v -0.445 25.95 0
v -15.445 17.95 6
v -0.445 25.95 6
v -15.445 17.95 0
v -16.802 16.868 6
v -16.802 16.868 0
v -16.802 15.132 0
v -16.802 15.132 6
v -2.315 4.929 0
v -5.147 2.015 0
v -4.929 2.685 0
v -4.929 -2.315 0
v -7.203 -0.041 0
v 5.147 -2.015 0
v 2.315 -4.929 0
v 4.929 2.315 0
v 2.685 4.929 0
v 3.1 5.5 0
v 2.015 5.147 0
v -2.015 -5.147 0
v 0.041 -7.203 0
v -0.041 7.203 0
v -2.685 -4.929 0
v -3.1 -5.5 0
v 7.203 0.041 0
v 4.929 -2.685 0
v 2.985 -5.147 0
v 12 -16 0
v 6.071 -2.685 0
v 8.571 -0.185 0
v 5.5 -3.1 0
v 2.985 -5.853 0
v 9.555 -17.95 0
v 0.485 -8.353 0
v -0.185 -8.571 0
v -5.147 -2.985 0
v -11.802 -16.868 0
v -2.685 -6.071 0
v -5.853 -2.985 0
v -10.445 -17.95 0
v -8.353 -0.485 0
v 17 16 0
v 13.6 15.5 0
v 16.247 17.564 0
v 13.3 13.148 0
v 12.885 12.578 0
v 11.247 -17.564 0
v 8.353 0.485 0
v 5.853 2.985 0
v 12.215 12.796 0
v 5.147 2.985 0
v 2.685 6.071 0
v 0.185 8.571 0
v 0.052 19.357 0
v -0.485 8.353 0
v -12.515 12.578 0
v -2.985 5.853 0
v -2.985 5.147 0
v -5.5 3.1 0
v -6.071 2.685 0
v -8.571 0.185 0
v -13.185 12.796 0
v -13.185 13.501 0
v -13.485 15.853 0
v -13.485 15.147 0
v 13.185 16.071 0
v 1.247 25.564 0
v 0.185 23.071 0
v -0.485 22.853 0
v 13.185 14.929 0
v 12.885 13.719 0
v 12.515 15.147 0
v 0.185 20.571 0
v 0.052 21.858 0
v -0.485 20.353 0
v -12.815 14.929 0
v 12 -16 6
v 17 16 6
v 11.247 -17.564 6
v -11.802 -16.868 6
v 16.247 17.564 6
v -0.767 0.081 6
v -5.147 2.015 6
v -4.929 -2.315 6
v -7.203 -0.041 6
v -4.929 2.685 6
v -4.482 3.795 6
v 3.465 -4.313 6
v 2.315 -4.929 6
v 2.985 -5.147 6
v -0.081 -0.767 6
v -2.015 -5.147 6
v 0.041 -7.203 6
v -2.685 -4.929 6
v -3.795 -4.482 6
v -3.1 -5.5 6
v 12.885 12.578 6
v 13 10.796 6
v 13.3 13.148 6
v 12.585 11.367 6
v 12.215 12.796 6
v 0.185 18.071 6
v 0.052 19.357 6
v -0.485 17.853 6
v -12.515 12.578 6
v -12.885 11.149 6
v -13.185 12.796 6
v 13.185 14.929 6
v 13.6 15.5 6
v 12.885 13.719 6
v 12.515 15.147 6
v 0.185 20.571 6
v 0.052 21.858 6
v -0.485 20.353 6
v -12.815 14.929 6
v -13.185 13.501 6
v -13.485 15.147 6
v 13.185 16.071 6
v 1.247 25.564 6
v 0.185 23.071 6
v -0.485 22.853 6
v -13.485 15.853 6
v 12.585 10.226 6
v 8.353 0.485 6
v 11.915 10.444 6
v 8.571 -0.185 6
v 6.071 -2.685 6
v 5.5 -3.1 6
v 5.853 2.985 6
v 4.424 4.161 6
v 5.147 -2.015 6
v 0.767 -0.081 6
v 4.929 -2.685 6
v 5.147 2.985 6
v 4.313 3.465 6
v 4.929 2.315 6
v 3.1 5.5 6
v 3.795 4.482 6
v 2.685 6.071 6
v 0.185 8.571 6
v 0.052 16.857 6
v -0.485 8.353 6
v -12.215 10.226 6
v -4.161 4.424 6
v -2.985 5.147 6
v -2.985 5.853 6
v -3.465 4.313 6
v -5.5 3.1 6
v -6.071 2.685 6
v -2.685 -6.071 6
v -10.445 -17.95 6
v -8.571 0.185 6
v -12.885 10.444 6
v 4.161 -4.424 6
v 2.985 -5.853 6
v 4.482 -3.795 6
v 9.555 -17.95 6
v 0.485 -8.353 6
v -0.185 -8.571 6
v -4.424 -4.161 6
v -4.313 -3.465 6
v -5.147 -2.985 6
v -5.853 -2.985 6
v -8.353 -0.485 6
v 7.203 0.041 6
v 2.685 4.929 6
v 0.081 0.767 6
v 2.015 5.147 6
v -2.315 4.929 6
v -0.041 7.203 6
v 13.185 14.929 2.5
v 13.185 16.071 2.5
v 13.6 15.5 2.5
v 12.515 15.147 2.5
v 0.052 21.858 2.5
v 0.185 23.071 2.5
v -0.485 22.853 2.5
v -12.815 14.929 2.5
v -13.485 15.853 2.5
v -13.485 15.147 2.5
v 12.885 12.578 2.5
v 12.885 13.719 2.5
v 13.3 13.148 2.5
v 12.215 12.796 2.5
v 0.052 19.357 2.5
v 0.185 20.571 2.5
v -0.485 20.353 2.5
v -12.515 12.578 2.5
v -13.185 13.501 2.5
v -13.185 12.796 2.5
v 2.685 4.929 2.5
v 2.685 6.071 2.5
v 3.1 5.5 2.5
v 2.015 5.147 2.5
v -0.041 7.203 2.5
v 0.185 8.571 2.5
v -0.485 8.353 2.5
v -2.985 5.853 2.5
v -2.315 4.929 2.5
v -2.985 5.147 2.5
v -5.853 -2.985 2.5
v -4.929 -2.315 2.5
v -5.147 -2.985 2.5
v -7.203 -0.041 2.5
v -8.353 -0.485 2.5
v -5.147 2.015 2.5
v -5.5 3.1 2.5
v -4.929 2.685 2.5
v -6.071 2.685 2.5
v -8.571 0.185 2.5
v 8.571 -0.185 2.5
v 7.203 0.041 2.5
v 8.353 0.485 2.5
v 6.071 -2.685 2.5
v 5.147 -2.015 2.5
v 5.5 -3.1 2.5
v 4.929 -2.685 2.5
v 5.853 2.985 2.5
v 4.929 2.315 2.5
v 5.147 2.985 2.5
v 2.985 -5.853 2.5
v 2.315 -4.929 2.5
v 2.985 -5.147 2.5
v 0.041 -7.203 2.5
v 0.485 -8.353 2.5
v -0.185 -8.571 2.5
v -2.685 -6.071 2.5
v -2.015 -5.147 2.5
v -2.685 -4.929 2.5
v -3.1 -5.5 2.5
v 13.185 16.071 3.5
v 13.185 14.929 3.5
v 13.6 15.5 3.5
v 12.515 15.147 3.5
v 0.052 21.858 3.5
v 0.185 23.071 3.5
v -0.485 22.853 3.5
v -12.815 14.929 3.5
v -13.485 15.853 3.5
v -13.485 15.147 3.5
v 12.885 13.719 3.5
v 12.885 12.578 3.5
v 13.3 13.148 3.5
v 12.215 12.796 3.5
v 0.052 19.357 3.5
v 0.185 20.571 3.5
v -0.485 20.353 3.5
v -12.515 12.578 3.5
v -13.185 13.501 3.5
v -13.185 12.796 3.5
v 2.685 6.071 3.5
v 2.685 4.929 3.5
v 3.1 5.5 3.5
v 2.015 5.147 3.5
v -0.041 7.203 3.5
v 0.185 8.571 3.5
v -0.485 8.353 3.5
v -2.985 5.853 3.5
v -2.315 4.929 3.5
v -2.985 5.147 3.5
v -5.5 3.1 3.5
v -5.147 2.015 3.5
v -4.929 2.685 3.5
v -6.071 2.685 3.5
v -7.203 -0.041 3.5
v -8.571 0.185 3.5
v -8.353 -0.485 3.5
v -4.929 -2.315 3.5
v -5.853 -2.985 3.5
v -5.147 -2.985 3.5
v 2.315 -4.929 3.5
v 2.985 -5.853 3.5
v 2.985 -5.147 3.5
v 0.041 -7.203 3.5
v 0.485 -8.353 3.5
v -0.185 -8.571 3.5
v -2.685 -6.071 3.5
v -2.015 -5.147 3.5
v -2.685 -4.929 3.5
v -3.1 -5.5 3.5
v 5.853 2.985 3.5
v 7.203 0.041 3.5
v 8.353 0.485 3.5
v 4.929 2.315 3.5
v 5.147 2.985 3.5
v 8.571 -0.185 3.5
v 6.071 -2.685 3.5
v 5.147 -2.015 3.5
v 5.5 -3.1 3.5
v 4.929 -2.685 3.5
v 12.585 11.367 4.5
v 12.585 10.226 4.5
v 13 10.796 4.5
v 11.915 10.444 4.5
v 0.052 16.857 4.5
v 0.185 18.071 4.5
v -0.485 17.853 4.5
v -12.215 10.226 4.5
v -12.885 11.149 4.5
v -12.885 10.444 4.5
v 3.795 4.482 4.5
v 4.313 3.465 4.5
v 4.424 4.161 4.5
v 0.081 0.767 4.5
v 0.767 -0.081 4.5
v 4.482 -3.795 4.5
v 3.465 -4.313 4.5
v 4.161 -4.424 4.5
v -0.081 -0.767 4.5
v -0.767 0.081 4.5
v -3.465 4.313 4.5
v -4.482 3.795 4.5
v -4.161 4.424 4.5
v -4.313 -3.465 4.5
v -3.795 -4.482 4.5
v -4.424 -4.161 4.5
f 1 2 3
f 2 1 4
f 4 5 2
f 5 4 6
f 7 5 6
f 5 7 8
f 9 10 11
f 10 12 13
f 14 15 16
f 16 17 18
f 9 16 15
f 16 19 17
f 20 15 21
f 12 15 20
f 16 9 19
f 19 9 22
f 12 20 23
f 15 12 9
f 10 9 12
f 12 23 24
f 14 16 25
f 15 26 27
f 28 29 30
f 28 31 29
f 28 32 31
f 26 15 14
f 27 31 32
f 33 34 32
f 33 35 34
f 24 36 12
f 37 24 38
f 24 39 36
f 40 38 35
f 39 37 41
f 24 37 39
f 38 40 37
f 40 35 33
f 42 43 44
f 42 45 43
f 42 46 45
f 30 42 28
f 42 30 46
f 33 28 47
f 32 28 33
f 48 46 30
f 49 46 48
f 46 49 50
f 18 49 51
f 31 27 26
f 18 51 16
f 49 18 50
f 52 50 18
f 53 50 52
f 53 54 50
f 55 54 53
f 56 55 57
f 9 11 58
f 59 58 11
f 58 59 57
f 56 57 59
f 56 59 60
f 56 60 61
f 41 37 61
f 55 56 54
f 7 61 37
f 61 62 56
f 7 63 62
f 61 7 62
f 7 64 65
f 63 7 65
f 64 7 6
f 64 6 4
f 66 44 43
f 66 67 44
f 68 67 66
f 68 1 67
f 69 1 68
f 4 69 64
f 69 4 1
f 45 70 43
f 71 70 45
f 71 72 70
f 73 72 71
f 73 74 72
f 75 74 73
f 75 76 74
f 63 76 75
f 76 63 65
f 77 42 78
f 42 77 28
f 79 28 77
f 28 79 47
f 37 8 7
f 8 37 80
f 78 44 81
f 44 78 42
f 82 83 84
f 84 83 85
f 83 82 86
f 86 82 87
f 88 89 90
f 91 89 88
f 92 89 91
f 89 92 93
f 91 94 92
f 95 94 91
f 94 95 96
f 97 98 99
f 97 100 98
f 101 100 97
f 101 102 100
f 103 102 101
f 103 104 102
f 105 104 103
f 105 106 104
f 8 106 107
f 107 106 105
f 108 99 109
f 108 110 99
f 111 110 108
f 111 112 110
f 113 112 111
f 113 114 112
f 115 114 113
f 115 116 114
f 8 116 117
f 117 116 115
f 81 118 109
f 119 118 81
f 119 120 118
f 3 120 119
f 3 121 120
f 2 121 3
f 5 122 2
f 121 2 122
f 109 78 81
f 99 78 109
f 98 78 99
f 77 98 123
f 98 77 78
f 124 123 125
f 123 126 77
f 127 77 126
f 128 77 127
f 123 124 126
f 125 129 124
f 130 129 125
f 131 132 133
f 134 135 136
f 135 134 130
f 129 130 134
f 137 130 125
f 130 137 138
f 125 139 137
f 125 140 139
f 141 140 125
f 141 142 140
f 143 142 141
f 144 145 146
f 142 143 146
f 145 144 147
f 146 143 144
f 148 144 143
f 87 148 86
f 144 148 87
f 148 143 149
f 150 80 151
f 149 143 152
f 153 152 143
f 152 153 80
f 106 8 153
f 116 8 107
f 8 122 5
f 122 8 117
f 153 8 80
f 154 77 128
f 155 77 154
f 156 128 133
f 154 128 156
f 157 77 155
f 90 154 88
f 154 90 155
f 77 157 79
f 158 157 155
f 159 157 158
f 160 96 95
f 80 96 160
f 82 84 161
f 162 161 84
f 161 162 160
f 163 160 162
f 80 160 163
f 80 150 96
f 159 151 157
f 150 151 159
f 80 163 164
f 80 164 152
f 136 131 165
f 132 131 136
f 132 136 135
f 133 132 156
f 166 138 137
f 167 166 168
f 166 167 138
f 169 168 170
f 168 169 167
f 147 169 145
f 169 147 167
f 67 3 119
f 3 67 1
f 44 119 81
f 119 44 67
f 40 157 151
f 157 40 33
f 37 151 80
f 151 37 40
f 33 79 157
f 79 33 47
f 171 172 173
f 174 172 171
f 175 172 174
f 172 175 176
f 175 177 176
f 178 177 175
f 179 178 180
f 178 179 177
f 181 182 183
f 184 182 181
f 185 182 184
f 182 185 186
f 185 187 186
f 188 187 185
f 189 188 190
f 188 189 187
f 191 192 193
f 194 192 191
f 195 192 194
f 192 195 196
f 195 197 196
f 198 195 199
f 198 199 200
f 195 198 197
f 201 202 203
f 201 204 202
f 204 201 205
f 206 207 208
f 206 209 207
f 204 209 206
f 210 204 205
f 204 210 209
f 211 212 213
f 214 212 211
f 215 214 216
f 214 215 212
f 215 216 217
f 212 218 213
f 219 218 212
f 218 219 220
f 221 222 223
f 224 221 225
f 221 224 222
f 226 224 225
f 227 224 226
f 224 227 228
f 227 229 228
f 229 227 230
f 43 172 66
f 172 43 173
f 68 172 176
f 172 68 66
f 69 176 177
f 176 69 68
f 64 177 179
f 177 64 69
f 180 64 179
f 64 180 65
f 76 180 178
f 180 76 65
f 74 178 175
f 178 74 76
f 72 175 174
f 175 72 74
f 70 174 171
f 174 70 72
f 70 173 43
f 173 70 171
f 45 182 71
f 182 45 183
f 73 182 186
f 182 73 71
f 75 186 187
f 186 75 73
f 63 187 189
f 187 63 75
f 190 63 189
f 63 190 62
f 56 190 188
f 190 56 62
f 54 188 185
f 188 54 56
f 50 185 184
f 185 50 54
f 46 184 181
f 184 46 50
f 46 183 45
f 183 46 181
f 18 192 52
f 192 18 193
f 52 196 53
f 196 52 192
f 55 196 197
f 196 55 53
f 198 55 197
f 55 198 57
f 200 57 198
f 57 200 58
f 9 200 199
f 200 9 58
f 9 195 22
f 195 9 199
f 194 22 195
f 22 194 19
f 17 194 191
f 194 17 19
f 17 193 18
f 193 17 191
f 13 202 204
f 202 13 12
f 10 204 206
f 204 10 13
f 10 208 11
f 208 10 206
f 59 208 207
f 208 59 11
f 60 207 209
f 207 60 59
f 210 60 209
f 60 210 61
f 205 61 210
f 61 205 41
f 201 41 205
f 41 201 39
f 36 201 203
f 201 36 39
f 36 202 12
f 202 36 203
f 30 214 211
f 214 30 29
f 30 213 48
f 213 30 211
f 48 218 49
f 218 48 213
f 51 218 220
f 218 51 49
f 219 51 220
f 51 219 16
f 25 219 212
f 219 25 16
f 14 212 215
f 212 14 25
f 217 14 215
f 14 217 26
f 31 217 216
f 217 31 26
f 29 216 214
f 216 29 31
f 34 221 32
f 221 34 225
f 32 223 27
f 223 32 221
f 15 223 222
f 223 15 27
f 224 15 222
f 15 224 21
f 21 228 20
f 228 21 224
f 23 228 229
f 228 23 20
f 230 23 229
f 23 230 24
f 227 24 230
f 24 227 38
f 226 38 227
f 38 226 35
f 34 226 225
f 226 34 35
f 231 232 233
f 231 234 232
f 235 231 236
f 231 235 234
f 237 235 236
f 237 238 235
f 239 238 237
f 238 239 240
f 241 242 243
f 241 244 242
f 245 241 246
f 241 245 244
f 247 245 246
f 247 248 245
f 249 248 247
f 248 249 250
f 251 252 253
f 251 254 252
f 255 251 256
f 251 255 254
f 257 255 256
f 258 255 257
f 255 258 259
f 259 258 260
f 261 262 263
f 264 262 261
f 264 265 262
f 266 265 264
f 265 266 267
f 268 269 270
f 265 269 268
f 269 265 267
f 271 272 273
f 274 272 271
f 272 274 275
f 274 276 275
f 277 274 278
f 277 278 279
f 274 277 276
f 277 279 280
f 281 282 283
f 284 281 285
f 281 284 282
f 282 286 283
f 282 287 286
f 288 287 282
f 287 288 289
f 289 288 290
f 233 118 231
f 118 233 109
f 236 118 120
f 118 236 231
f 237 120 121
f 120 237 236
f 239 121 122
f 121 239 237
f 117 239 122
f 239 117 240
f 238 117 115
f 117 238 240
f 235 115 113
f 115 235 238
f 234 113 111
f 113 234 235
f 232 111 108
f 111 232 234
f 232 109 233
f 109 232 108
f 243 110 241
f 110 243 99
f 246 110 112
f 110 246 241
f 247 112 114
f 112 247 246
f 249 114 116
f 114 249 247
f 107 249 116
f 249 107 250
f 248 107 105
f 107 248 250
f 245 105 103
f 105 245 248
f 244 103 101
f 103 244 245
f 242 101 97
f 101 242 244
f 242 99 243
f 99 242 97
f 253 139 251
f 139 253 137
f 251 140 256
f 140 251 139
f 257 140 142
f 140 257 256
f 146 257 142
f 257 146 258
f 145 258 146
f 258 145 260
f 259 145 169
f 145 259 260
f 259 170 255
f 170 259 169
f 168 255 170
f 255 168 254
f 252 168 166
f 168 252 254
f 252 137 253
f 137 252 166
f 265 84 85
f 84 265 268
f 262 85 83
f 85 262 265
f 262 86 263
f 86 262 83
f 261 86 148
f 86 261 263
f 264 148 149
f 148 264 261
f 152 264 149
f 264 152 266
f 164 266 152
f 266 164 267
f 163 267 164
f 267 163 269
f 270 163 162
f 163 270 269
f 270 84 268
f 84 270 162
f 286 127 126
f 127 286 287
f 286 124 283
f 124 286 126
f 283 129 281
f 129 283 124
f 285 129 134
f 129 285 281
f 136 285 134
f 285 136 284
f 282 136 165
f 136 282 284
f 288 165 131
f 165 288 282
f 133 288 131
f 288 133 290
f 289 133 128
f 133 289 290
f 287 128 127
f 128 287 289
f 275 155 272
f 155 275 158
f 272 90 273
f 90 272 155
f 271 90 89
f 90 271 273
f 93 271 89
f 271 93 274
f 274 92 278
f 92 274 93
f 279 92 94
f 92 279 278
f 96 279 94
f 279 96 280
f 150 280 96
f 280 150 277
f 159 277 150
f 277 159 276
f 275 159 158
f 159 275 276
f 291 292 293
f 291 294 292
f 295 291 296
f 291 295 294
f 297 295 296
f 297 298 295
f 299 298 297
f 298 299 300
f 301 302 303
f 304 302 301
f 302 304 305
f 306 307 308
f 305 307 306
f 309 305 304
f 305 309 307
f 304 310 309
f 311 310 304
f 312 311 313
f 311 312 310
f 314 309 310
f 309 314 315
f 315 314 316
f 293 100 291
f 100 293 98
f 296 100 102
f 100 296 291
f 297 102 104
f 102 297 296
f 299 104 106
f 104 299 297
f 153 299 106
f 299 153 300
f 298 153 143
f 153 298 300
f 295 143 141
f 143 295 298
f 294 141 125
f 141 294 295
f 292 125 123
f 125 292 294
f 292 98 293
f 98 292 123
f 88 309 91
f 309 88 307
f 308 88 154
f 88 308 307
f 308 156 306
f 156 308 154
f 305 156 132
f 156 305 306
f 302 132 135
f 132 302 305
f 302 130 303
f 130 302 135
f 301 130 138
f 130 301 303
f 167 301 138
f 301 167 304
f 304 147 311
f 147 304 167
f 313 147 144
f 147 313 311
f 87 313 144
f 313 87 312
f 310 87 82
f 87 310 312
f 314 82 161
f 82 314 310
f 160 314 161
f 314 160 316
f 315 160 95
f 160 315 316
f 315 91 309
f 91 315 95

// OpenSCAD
// file: moves/range.scad
module shogi_move_range(edges=[0], thick=0.6) {
    for (a=edges) {
        rotate(a=a*45) {
            hull() {
                translate([-2.5, 5.5, 0]) circle(thick);
                translate([0, 8, 0]) circle(thick);
            }

            hull() {
                translate([0, 8, 0]) circle(thick);
                translate([2.5, 5.5, 0]) circle(thick);
            }
        }
    }
}
// file: moves/step.scad
module shogi_move_step(edges=[0], length=6, thick=0.6) {
    for (a=edges) {
        rotate(a=a*45) hull() {
            circle(thick);
            translate([0, length, 0]) circle(thick);
        }
    }
}
// file: ranks/rank3.scad
module shogi_rank_3(thick=0.6) {
    hull() {
        translate([-12.4, 10.796364, 0]) circle(thick);
        translate([0, 17.5, 0]) circle(thick);
    }

    hull() {
        translate([0, 17.5, 0]) circle(thick);
        translate([12.4, 10.796364, 0]) circle(thick);
    }
}
// file: ranks/rank2.scad
module shogi_rank_2(thick=0.6) {
    hull() {
        translate([-12.7, 13.148182, 0]) circle(thick);
        translate([0, 20, 0]) circle(thick);
    }

    hull() {
        translate([0, 20, 0]) circle(thick);
        translate([12.7, 13.148182, 0]) circle(thick);
    }
}
// file: ranks/rank1.scad
module shogi_rank_1(thick=0.6) {
    hull() {
        translate([-13, 15.5, 0]) circle(thick);
        translate([0, 22.5, 0]) circle(thick);
    }

    hull() {
        translate([0, 22.5, 0]) circle(thick);
        translate([13, 15.5, 0]) circle(thick);
    }
}
// file: koma/slim.scad
module shogi_koma_slim(width=30, length=40, rounding=2) {
    points=[
        [width/6 , 0],
        [0, length*0.8],
        [width/2, length],
        [width, length*0.8],
        [5*width/6, 0]
    ];

    minkowski() {
        polygon(points);
        circle(rounding);
    }
}
// file: base/piece.scad
module shogi_piece(thick=6) {
    unit=thick/12;

    difference() {
        translate([-15, -16, 0])
        linear_extrude(thick) children(0);
        translate([0, 0, -1*unit]) linear_extrude(6*unit) children(1);
        translate([0, 0, 7*unit]) linear_extrude(6*unit) children(2);
        translate([0, 0, 9*unit]) linear_extrude(6*unit) children(3);
    }
}
// main file
use <base/piece.scad>;
use <koma/slim.scad>;
use <ranks/rank1.scad>;
use <ranks/rank2.scad>;
use <ranks/rank3.scad>;
use <moves/step.scad>;
use <moves/range.scad>;

shogi_piece() {
    shogi_koma_slim();
    union() {
        shogi_rank_1();
        shogi_rank_2();
        shogi_move_range(edges=[0, 2, 4, 6]);
    }
    union() {
        shogi_rank_1();
        shogi_rank_2();
        shogi_move_range(edges=[0, 2, 4, 6]);
    }
    union() {
        shogi_rank_3();
        shogi_move_step(edges=[1, 3, 5, 7], length=5.5);
    }
}
